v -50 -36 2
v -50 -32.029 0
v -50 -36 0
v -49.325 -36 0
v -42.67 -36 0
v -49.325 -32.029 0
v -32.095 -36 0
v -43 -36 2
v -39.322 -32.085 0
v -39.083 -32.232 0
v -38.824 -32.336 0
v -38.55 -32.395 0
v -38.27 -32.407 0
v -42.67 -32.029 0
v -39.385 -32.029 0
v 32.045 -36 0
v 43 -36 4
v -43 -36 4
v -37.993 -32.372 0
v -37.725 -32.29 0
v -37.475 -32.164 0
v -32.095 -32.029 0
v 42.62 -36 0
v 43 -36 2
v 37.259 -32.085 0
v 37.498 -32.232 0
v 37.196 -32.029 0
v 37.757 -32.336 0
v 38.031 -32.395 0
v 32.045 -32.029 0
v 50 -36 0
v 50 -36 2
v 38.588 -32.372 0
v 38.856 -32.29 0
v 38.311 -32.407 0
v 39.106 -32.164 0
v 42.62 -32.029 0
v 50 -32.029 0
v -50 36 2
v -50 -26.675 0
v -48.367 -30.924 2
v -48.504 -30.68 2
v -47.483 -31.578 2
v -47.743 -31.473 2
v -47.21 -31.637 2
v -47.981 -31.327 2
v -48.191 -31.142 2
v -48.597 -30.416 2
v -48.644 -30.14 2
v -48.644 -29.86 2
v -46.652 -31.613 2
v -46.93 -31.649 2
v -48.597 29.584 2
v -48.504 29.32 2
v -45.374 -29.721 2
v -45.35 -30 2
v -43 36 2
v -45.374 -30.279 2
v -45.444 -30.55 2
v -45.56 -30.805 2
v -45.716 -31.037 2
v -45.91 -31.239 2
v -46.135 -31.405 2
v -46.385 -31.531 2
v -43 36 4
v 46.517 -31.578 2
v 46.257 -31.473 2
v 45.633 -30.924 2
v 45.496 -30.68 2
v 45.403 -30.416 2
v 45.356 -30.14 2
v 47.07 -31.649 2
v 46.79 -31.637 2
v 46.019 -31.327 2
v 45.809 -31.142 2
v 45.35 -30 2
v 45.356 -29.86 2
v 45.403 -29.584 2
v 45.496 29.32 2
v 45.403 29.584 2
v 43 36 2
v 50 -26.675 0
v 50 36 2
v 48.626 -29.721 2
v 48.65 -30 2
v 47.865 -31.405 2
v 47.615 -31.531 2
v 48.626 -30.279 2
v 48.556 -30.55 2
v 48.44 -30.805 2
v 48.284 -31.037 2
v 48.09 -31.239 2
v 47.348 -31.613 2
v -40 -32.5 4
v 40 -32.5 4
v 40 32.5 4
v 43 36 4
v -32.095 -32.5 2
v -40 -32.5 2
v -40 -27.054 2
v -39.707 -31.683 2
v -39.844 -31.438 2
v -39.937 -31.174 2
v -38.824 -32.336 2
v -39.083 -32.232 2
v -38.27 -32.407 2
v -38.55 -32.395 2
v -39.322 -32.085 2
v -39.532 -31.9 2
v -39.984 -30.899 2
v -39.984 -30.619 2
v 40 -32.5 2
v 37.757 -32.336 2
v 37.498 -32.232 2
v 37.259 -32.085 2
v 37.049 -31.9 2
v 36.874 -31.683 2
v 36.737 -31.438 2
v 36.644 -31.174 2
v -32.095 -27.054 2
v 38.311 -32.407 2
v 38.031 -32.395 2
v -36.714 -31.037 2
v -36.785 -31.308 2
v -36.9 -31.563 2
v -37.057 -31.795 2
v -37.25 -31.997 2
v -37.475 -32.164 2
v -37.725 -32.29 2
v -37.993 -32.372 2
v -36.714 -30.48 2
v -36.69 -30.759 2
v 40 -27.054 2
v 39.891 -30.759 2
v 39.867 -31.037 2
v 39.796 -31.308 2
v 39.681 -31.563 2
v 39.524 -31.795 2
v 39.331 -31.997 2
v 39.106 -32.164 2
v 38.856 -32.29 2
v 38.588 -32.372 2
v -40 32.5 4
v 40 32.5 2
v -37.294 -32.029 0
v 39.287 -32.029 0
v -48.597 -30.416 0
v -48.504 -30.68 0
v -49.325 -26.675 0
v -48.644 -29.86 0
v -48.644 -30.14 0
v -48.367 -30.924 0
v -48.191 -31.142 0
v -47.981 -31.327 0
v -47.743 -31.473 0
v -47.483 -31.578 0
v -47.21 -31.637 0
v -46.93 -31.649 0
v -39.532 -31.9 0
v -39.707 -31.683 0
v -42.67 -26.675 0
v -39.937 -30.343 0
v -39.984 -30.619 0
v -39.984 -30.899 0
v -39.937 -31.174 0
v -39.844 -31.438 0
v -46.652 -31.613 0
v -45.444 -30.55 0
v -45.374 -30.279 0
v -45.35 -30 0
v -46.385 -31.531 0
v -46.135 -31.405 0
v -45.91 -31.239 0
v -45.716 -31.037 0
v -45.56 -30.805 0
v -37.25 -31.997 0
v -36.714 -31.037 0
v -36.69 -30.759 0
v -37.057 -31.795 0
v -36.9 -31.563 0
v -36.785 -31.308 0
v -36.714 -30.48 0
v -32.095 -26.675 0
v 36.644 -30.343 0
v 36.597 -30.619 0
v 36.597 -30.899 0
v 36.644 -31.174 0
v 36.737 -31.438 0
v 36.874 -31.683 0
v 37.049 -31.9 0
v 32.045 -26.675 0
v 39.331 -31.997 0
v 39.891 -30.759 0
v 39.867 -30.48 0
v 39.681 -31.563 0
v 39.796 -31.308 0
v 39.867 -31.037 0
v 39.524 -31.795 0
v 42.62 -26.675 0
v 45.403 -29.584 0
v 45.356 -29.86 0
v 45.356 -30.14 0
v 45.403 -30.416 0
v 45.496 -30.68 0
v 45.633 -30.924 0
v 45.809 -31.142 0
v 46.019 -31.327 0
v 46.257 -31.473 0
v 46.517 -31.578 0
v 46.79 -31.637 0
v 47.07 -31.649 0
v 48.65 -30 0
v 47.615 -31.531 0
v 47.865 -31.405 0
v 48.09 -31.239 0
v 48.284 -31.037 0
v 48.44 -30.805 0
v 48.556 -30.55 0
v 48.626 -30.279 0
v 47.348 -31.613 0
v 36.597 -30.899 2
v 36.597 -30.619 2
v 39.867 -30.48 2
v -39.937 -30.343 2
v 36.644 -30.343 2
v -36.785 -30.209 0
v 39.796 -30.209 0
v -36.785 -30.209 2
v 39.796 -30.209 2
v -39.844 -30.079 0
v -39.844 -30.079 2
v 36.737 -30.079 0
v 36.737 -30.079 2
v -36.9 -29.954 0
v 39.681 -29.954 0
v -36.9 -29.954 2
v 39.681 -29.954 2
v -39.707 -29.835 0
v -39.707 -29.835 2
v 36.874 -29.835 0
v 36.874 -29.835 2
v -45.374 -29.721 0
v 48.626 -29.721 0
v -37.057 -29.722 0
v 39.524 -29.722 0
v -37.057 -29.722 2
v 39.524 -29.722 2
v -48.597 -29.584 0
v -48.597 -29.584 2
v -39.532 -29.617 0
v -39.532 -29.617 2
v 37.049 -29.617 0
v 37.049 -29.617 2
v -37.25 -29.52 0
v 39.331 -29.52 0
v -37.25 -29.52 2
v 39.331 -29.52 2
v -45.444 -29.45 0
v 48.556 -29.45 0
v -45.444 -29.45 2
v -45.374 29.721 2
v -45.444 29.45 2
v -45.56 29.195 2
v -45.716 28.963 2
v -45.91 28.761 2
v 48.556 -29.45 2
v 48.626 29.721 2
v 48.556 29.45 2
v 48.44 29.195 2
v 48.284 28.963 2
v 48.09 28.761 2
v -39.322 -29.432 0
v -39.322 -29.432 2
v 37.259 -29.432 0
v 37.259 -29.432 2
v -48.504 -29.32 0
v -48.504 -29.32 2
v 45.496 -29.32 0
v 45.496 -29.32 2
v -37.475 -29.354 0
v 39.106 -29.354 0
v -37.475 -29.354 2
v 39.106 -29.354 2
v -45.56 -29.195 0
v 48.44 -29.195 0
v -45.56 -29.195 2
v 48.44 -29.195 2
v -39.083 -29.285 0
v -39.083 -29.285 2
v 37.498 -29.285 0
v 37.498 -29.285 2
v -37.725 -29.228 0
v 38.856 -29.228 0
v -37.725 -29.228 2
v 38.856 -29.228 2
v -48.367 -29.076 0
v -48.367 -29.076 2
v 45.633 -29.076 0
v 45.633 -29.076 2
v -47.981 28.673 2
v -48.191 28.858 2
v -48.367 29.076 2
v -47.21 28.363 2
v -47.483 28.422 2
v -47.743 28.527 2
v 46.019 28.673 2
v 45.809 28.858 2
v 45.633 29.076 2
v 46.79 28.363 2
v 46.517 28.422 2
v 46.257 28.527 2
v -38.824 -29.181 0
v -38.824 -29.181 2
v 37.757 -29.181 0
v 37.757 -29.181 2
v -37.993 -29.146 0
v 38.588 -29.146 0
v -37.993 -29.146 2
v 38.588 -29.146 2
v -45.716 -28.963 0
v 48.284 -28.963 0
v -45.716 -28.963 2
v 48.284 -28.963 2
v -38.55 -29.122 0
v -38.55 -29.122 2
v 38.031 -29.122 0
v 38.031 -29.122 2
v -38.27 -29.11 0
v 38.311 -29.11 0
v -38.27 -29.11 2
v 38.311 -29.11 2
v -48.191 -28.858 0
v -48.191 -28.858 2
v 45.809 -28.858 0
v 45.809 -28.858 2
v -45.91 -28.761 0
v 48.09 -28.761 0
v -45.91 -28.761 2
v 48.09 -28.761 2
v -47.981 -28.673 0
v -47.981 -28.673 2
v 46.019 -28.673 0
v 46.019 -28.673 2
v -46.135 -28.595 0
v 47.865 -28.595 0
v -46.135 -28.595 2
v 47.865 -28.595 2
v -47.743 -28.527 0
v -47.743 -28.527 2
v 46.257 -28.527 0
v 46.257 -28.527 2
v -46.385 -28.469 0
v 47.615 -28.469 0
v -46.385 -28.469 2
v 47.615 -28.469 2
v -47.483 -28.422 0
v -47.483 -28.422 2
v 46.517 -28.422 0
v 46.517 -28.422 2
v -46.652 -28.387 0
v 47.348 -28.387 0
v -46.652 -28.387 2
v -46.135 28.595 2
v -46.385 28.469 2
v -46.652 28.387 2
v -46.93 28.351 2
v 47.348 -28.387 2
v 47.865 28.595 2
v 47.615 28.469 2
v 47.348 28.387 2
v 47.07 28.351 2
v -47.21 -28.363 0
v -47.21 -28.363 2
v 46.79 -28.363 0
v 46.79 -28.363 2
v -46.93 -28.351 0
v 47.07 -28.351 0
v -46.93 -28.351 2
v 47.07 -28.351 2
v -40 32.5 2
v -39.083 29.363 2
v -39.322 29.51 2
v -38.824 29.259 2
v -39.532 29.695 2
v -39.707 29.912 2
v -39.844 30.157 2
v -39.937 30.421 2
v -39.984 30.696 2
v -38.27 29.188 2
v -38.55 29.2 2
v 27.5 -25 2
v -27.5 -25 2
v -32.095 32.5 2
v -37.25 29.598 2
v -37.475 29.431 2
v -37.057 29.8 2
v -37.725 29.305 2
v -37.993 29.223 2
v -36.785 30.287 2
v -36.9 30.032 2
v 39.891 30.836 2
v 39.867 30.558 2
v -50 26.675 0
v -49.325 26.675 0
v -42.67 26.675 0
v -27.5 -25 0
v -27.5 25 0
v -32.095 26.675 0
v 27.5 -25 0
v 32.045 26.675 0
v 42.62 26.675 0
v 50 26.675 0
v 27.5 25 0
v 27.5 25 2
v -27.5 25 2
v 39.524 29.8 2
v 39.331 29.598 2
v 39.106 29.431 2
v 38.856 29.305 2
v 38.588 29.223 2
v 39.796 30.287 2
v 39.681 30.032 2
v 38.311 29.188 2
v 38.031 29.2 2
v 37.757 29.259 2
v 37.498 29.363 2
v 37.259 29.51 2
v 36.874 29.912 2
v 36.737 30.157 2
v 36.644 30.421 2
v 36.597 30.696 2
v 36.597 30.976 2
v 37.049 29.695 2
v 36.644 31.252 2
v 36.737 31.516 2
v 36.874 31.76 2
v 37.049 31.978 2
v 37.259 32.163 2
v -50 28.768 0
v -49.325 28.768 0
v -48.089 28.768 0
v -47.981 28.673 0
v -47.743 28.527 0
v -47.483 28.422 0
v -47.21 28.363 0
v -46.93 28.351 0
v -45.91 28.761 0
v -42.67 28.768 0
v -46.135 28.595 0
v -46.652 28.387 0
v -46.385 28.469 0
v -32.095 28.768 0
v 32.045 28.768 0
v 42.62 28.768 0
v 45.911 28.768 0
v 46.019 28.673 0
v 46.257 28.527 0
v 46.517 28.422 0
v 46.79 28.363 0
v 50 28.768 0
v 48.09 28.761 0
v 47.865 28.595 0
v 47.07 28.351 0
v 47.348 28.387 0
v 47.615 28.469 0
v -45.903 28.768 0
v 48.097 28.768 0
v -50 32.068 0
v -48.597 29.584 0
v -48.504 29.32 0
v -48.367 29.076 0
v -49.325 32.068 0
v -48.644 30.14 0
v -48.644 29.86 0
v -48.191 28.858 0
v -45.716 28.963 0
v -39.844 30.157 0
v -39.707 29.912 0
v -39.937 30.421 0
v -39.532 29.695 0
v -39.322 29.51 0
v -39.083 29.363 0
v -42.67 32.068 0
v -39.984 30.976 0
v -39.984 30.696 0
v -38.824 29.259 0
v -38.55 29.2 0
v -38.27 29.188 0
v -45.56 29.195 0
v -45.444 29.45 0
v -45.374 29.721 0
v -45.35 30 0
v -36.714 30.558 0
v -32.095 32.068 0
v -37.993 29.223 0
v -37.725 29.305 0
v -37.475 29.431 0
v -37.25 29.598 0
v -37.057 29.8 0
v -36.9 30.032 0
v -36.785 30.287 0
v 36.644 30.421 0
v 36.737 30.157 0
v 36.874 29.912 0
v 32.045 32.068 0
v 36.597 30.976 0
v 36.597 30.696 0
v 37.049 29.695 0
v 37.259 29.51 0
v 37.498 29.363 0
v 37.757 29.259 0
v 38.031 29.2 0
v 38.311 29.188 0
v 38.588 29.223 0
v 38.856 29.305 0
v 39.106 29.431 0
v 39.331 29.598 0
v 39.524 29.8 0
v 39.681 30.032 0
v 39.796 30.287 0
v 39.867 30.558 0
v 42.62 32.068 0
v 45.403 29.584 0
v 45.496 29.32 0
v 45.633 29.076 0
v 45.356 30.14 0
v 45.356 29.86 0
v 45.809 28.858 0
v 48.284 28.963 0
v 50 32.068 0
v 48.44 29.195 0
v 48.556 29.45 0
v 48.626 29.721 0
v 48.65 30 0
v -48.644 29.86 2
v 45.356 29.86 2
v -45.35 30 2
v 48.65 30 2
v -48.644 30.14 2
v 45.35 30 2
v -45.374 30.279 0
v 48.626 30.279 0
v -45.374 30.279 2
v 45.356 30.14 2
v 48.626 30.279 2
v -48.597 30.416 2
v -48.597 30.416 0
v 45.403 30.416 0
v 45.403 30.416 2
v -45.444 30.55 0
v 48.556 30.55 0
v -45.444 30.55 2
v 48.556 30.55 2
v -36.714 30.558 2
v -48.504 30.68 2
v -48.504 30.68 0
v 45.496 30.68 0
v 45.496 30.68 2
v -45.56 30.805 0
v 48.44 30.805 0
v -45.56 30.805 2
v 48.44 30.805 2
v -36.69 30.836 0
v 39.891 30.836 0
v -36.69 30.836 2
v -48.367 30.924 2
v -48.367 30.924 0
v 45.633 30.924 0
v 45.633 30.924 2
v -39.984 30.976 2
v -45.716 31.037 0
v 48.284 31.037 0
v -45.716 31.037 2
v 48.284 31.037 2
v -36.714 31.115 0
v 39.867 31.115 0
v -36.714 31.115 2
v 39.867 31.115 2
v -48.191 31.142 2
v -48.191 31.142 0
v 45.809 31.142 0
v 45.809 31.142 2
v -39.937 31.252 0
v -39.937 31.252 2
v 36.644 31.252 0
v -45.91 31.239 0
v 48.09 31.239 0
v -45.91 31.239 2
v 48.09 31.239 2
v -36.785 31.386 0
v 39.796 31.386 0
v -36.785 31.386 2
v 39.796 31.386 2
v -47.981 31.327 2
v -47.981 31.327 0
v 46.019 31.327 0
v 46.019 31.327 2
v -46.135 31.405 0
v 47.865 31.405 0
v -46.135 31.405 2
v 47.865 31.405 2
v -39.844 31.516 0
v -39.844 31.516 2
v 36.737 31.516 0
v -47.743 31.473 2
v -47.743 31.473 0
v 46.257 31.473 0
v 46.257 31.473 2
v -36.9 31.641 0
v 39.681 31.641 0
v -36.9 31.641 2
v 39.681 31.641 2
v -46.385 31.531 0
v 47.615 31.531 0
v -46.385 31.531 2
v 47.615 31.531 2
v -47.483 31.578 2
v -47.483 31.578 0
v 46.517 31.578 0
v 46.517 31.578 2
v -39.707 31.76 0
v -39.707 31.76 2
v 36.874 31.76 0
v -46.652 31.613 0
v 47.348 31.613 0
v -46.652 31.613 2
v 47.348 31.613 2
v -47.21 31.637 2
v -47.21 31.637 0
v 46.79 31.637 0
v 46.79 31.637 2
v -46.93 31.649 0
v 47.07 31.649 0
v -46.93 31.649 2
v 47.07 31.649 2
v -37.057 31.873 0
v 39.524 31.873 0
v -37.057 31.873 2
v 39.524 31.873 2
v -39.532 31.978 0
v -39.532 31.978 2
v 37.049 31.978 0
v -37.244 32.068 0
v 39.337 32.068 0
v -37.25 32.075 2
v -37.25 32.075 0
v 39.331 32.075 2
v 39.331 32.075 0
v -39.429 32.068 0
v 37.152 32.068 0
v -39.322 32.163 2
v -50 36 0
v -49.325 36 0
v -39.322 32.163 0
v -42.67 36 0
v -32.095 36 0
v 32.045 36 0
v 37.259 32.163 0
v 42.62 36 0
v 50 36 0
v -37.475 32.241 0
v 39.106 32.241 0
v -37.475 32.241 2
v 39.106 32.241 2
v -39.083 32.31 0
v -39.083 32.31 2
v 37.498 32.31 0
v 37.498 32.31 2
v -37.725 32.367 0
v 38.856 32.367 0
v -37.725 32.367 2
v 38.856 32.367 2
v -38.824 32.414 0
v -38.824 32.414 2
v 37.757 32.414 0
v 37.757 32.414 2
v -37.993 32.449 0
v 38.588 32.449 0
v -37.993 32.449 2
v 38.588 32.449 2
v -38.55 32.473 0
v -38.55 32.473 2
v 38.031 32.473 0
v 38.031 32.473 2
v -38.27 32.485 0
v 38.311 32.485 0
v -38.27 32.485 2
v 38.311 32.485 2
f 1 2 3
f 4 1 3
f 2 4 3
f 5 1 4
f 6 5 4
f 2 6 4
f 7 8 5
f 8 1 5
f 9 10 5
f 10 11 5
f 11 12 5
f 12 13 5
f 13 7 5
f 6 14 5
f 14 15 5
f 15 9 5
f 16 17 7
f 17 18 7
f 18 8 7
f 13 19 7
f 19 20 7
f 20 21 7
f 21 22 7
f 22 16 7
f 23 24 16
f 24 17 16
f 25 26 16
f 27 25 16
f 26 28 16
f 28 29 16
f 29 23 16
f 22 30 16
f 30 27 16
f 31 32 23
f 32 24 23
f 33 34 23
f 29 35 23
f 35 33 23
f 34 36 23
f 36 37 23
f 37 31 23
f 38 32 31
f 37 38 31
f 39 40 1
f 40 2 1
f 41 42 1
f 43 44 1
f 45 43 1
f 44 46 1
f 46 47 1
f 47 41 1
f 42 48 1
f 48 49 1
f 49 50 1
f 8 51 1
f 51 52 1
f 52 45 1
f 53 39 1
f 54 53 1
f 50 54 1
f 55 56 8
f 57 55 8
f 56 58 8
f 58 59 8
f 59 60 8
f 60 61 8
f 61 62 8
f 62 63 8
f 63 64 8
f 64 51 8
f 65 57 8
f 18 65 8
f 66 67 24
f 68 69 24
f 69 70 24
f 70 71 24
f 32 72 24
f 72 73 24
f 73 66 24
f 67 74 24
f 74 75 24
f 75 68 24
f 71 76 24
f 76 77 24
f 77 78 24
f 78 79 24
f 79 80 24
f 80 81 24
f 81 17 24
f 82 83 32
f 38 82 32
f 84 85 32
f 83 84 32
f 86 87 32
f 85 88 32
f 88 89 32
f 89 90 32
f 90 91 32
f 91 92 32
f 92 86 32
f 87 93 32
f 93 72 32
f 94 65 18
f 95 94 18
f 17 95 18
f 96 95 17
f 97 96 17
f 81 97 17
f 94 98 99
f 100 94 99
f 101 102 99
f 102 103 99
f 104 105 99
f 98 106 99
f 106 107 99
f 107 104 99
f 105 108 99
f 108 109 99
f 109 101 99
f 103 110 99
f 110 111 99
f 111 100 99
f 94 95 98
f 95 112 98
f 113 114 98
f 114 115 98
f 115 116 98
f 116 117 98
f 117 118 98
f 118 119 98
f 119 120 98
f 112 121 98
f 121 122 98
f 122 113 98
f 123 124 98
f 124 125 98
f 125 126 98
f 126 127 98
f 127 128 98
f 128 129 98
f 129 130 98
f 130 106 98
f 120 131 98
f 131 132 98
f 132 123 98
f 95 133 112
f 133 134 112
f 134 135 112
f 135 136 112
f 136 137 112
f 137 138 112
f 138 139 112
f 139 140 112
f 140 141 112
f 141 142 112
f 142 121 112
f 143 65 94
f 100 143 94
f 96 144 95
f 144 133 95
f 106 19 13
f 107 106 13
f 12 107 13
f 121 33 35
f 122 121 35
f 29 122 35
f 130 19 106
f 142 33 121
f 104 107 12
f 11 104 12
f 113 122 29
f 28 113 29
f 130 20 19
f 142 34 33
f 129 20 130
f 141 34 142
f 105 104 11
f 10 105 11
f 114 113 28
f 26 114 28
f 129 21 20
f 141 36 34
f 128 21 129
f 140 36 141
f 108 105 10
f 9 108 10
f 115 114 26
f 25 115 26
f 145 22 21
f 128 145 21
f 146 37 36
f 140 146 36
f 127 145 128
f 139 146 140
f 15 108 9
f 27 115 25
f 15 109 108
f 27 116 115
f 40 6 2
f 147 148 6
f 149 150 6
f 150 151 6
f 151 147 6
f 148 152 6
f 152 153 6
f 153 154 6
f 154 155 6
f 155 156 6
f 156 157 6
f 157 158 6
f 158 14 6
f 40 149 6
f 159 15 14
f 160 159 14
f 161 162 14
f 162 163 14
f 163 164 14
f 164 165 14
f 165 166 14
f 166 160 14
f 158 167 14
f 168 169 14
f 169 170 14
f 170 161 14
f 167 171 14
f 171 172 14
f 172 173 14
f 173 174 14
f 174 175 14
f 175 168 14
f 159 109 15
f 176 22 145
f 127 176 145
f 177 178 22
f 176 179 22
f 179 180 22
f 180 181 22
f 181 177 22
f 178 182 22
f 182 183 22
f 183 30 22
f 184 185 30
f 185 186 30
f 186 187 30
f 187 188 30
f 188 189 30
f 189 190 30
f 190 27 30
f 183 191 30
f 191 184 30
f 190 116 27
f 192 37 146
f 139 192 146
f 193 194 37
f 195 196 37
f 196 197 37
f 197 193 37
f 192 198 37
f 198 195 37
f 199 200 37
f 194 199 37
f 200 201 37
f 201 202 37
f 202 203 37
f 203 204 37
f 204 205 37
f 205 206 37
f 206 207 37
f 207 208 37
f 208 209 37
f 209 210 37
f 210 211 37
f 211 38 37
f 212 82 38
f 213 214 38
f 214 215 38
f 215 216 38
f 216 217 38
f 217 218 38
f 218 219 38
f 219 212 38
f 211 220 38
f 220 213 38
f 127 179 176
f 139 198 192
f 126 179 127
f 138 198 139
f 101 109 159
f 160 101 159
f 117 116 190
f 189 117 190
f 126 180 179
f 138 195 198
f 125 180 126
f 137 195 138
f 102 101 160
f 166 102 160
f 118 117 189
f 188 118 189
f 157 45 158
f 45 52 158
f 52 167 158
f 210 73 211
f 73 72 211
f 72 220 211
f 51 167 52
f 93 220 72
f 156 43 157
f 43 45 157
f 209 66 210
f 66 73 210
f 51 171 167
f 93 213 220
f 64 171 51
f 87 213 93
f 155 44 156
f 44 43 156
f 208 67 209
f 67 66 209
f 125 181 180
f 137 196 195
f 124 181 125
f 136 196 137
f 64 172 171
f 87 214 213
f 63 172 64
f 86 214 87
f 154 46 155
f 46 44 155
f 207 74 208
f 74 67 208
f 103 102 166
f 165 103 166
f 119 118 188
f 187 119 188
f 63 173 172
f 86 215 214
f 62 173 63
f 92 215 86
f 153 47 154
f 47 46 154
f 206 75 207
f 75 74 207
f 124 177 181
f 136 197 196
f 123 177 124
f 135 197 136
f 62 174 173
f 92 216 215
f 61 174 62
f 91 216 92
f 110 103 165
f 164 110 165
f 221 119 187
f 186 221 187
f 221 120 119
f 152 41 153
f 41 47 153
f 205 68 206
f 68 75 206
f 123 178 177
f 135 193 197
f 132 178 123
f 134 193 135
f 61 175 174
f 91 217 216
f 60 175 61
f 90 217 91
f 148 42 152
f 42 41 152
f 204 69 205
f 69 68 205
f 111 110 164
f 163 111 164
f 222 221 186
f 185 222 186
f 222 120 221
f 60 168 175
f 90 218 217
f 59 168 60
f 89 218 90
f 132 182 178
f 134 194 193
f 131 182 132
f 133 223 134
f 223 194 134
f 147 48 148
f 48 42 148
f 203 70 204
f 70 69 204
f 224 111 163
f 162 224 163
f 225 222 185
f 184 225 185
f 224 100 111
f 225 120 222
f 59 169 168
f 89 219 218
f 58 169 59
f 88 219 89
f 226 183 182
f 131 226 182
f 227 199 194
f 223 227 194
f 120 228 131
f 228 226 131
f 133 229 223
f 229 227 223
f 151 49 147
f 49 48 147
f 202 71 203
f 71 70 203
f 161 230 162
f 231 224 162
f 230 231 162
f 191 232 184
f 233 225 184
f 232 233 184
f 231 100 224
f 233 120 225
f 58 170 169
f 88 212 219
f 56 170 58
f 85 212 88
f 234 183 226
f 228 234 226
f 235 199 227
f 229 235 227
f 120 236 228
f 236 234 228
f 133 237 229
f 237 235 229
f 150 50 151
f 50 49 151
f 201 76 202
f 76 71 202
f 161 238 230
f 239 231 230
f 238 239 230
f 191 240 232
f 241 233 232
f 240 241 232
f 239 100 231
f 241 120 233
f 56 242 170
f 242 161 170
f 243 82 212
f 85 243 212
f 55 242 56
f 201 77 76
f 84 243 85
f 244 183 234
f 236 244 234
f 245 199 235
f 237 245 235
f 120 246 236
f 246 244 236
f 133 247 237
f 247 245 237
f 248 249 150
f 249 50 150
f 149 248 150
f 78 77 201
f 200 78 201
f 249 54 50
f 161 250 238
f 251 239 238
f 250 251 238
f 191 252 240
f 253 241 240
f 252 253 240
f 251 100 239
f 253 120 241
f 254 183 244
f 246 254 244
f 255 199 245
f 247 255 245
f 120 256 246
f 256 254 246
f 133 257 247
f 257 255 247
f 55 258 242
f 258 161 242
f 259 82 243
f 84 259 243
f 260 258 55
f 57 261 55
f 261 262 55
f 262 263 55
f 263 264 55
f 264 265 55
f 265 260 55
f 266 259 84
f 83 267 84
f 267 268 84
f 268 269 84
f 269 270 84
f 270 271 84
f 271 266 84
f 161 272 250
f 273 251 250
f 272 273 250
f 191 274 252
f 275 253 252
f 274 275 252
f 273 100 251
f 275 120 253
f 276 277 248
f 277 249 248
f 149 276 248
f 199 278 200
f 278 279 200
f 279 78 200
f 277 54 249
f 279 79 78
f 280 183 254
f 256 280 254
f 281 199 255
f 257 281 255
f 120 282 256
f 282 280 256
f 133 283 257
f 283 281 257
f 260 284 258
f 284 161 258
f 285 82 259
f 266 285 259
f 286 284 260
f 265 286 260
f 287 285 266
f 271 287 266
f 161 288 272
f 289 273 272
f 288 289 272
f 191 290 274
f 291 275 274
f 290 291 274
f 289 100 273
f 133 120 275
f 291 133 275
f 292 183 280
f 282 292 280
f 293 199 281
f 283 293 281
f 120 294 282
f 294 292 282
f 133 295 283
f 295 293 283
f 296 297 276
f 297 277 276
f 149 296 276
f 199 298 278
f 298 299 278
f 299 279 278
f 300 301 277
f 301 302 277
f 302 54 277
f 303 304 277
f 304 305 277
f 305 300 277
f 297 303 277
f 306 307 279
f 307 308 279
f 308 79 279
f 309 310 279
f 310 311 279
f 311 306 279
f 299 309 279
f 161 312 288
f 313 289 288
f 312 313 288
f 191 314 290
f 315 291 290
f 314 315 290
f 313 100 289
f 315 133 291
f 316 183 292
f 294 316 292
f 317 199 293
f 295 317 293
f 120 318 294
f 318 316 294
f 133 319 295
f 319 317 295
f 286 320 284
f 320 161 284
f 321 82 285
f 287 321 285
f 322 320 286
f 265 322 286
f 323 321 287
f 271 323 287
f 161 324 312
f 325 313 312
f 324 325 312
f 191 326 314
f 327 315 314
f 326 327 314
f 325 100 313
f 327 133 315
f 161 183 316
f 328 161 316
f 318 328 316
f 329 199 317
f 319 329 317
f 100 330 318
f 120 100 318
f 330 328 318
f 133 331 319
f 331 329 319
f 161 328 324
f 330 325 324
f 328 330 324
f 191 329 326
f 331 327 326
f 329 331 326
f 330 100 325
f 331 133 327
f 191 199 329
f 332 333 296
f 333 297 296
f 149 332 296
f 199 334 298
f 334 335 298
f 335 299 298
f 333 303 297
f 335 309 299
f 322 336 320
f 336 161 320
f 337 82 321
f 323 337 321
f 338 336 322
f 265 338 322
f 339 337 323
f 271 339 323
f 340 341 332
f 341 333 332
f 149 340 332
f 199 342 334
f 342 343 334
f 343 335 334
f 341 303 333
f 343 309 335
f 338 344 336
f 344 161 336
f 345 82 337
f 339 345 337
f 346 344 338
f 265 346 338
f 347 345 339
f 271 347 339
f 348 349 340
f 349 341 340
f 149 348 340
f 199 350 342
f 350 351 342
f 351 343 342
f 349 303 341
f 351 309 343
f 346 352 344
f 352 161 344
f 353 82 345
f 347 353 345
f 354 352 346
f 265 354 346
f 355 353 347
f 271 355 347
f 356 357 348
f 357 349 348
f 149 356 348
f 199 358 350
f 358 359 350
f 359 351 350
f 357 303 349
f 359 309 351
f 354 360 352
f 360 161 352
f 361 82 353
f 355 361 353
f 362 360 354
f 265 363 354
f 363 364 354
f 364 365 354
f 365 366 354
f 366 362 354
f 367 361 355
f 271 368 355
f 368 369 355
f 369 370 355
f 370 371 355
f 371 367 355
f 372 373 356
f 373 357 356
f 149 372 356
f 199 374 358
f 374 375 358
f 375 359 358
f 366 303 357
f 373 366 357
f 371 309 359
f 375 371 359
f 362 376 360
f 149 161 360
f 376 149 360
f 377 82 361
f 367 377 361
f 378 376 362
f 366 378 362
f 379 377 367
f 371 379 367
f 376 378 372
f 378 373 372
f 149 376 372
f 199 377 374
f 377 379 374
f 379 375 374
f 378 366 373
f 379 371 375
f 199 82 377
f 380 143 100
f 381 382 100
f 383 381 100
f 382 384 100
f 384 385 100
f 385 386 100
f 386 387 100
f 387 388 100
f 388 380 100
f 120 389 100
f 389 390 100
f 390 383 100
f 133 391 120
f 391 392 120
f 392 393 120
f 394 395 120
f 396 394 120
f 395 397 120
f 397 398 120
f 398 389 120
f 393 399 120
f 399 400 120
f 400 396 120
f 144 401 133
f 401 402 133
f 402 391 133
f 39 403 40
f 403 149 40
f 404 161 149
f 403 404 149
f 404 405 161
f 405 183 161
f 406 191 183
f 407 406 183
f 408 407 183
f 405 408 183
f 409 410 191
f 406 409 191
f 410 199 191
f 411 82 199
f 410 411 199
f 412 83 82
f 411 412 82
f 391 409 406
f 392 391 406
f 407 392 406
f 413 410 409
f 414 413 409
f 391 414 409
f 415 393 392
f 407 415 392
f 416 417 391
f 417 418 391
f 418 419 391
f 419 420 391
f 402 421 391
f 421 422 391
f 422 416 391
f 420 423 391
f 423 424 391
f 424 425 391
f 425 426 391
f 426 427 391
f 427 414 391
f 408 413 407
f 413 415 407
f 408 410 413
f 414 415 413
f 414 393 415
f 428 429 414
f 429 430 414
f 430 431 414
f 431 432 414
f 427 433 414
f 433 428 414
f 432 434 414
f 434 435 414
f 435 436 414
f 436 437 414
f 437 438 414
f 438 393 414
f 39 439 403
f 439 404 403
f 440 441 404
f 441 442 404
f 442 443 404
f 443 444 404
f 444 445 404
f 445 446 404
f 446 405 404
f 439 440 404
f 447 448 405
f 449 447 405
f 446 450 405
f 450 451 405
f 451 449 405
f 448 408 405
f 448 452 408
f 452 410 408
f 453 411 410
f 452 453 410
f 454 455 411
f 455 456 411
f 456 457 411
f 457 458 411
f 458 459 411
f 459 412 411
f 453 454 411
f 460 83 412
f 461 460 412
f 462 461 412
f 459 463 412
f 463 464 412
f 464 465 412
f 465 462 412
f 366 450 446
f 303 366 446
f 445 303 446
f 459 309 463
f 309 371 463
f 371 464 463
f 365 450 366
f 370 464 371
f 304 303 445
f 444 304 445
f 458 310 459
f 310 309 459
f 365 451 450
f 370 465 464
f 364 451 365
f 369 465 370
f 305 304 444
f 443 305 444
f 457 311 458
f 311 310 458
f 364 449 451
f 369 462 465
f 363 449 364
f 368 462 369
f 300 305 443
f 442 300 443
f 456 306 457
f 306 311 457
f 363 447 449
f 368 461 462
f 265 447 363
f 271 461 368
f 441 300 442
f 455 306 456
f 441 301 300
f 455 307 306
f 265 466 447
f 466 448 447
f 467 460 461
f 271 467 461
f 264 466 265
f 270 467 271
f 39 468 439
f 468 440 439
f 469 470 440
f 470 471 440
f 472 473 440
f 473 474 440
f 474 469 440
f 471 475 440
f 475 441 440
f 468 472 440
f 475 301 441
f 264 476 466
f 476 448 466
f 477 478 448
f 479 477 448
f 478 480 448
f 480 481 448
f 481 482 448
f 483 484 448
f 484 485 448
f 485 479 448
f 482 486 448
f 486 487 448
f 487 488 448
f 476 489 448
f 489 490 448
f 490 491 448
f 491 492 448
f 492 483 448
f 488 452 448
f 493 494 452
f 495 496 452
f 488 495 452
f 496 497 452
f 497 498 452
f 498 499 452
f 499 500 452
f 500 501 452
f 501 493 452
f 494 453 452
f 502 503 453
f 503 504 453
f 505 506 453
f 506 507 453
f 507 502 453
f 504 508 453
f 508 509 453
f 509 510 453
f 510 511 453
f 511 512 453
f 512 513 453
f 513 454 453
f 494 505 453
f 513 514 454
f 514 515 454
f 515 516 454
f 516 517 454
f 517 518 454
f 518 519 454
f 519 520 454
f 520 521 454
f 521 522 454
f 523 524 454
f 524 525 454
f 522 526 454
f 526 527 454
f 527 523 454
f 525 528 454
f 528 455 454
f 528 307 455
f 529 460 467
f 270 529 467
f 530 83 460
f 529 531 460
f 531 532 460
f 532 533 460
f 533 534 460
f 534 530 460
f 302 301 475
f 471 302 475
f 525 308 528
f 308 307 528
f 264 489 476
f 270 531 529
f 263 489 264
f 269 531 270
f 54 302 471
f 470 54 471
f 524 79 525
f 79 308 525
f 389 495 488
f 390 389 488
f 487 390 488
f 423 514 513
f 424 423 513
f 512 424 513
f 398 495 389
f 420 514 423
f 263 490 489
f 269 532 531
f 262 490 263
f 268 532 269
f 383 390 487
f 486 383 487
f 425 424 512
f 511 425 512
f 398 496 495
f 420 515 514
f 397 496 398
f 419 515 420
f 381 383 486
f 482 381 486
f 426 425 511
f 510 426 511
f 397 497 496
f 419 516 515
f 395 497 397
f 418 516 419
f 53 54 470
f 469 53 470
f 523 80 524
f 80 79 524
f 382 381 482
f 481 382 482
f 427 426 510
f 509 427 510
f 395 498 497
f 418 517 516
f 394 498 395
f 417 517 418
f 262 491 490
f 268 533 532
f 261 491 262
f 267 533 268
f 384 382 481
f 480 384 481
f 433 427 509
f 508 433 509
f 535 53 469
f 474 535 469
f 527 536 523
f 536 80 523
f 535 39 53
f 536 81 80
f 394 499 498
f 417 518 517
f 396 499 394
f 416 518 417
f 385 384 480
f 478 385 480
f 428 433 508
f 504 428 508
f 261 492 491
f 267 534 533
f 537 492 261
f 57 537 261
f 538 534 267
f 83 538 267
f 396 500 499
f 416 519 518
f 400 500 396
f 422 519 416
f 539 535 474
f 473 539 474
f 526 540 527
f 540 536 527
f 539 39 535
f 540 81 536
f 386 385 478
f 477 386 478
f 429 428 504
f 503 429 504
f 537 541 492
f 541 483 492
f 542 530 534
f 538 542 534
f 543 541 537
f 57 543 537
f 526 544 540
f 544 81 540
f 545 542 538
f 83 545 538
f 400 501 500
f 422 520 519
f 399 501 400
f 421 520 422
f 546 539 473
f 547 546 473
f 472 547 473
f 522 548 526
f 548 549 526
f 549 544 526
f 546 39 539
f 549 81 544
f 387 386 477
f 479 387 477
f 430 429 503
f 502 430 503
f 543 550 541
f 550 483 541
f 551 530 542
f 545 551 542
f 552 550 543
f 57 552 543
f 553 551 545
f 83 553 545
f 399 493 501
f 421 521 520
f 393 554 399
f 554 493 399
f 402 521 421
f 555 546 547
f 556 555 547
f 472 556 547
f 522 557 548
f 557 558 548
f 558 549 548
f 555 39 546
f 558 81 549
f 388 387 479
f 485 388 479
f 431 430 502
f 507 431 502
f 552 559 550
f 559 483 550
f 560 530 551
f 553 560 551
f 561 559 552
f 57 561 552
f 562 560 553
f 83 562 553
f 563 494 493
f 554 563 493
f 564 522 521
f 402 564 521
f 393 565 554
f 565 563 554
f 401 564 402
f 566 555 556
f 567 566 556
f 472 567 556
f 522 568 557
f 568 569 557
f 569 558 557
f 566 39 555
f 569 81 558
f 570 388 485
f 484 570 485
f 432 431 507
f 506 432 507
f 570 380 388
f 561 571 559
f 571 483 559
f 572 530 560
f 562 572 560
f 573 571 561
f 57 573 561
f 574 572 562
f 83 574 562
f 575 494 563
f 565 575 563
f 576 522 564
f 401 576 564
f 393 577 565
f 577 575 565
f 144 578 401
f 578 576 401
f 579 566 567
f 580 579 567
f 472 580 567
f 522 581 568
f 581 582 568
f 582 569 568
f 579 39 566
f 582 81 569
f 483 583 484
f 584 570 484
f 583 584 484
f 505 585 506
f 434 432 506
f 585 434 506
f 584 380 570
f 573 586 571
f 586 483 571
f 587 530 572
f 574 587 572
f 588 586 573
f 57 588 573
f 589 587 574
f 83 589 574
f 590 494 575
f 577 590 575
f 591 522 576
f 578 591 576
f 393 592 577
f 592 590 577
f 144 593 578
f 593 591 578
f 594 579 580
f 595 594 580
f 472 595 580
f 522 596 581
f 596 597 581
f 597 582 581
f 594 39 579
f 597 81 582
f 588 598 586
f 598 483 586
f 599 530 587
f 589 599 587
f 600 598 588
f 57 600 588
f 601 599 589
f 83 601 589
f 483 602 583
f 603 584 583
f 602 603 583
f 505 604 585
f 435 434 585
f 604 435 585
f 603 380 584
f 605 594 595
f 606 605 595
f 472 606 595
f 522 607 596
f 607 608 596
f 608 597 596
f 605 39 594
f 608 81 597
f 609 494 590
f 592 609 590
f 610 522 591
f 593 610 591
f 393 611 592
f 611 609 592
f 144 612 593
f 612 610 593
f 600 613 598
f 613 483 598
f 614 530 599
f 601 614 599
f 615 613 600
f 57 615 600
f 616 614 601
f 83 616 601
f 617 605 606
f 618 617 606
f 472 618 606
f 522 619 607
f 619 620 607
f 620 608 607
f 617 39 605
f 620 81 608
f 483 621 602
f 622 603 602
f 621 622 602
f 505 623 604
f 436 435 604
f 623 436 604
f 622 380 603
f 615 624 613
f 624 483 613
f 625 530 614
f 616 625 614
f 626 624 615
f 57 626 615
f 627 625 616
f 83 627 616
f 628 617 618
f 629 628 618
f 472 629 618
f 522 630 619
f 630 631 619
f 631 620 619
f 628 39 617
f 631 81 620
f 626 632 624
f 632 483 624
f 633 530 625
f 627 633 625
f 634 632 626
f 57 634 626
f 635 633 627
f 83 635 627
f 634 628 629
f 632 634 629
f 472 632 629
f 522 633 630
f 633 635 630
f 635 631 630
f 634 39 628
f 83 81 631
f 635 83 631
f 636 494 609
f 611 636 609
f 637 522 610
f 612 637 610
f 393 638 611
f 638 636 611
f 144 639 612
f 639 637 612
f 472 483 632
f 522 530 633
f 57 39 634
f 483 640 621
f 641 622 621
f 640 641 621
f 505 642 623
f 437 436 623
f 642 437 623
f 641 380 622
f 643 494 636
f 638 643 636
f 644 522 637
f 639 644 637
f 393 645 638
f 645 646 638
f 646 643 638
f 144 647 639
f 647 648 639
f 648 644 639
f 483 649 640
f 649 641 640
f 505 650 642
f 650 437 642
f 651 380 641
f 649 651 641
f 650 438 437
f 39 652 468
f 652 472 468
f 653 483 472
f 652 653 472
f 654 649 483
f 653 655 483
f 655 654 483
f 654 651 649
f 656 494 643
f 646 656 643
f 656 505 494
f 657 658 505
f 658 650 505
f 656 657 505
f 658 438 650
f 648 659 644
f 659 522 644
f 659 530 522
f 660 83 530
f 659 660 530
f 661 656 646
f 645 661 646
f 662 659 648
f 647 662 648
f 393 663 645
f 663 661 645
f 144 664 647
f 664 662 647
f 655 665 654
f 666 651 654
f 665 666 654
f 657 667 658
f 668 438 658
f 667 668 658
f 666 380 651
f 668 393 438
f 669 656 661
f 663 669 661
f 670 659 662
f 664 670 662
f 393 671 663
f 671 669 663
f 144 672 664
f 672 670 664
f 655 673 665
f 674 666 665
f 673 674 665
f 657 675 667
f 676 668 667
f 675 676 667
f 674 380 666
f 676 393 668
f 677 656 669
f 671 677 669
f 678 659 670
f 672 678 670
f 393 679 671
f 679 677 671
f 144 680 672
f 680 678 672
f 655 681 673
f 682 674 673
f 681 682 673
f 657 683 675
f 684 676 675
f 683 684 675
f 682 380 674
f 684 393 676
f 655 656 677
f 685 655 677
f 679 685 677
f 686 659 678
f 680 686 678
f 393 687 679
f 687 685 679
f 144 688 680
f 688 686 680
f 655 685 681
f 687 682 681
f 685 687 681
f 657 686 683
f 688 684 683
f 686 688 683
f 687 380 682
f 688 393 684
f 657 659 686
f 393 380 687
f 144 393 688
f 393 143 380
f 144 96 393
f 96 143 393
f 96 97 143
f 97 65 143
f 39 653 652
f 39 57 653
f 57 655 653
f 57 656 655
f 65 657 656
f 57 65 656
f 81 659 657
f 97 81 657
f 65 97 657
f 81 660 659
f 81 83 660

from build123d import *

# Parameters (mm, degrees)
SKETCH_1_W          = 100
SKETCH_1_H          = 72
EXTRUDE_1_DEPTH     = 4
SKETCH_2_W          = 80
SKETCH_2_H          = 65
CUT_EXTRUDE_1_DEPTH = 2
SKETCH_3_R          = 1.65
CUT_EXTRUDE_2_DEPTH = 2
SKETCH_4_R          = 1.65
CUT_EXTRUDE_3_DEPTH = 4
SKETCH_5_W          = 7
SKETCH_5_H          = 72
CUT_EXTRUDE_4_DEPTH = 2
SKETCH_6_W          = 55
SKETCH_6_H          = 50
CUT_EXTRUDE_5_DEPTH = 2


with BuildPart() as part:
    # 草图1 → 凸台-拉伸1 (new body)
    with BuildSketch(Plane.XY):
        Rectangle(SKETCH_1_W, SKETCH_1_H)
    extrude(amount=EXTRUDE_1_DEPTH)

    # 草图2 → 切除-拉伸1 (cut)
    with BuildSketch(Plane.XY.offset(4)):
        Rectangle(SKETCH_2_W, SKETCH_2_H)
    extrude(amount=-CUT_EXTRUDE_1_DEPTH, mode=Mode.SUBTRACT)

    # 草图3 → 切除-拉伸2 (cut)
    with BuildSketch(Plane.XY.offset(2)):
        with Locations((-38.340391641, 30.83641332)):
            Circle(SKETCH_3_R)
        with Locations((38.240608359, 30.83641332)):
            Circle(SKETCH_3_R)
        with Locations((38.240608359, -30.75858668)):
            Circle(SKETCH_3_R)
        with Locations((-38.340391641, -30.75858668)):
            Circle(SKETCH_3_R)
    extrude(amount=-CUT_EXTRUDE_2_DEPTH, mode=Mode.SUBTRACT)

    # 草图4 → 切除-拉伸3 (cut)
    with BuildSketch(Plane.XY.offset(4)):
        with Locations((-47, 30)):
            Circle(SKETCH_4_R)
        with Locations((47, 30)):
            Circle(SKETCH_4_R)
        with Locations((47, -30)):
            Circle(SKETCH_4_R)
        with Locations((-47, -30)):
            Circle(SKETCH_4_R)
    extrude(amount=-CUT_EXTRUDE_3_DEPTH, mode=Mode.SUBTRACT)

    # 草图5 → 切除-拉伸4 (cut)
    with BuildSketch(Plane.XY.offset(4)):
        with Locations((-46.5, 0)):
            Rectangle(SKETCH_5_W, SKETCH_5_H)
        with Locations((46.5, 0)):
            Rectangle(SKETCH_5_W, SKETCH_5_H)
    extrude(amount=-CUT_EXTRUDE_4_DEPTH, mode=Mode.SUBTRACT)

    # 草图6 → 切除-拉伸5 (cut)
    with BuildSketch(Plane.XY.offset(2)):
        Rectangle(SKETCH_6_W, SKETCH_6_H)
    extrude(amount=-CUT_EXTRUDE_5_DEPTH, mode=Mode.SUBTRACT)


solid = part.part
